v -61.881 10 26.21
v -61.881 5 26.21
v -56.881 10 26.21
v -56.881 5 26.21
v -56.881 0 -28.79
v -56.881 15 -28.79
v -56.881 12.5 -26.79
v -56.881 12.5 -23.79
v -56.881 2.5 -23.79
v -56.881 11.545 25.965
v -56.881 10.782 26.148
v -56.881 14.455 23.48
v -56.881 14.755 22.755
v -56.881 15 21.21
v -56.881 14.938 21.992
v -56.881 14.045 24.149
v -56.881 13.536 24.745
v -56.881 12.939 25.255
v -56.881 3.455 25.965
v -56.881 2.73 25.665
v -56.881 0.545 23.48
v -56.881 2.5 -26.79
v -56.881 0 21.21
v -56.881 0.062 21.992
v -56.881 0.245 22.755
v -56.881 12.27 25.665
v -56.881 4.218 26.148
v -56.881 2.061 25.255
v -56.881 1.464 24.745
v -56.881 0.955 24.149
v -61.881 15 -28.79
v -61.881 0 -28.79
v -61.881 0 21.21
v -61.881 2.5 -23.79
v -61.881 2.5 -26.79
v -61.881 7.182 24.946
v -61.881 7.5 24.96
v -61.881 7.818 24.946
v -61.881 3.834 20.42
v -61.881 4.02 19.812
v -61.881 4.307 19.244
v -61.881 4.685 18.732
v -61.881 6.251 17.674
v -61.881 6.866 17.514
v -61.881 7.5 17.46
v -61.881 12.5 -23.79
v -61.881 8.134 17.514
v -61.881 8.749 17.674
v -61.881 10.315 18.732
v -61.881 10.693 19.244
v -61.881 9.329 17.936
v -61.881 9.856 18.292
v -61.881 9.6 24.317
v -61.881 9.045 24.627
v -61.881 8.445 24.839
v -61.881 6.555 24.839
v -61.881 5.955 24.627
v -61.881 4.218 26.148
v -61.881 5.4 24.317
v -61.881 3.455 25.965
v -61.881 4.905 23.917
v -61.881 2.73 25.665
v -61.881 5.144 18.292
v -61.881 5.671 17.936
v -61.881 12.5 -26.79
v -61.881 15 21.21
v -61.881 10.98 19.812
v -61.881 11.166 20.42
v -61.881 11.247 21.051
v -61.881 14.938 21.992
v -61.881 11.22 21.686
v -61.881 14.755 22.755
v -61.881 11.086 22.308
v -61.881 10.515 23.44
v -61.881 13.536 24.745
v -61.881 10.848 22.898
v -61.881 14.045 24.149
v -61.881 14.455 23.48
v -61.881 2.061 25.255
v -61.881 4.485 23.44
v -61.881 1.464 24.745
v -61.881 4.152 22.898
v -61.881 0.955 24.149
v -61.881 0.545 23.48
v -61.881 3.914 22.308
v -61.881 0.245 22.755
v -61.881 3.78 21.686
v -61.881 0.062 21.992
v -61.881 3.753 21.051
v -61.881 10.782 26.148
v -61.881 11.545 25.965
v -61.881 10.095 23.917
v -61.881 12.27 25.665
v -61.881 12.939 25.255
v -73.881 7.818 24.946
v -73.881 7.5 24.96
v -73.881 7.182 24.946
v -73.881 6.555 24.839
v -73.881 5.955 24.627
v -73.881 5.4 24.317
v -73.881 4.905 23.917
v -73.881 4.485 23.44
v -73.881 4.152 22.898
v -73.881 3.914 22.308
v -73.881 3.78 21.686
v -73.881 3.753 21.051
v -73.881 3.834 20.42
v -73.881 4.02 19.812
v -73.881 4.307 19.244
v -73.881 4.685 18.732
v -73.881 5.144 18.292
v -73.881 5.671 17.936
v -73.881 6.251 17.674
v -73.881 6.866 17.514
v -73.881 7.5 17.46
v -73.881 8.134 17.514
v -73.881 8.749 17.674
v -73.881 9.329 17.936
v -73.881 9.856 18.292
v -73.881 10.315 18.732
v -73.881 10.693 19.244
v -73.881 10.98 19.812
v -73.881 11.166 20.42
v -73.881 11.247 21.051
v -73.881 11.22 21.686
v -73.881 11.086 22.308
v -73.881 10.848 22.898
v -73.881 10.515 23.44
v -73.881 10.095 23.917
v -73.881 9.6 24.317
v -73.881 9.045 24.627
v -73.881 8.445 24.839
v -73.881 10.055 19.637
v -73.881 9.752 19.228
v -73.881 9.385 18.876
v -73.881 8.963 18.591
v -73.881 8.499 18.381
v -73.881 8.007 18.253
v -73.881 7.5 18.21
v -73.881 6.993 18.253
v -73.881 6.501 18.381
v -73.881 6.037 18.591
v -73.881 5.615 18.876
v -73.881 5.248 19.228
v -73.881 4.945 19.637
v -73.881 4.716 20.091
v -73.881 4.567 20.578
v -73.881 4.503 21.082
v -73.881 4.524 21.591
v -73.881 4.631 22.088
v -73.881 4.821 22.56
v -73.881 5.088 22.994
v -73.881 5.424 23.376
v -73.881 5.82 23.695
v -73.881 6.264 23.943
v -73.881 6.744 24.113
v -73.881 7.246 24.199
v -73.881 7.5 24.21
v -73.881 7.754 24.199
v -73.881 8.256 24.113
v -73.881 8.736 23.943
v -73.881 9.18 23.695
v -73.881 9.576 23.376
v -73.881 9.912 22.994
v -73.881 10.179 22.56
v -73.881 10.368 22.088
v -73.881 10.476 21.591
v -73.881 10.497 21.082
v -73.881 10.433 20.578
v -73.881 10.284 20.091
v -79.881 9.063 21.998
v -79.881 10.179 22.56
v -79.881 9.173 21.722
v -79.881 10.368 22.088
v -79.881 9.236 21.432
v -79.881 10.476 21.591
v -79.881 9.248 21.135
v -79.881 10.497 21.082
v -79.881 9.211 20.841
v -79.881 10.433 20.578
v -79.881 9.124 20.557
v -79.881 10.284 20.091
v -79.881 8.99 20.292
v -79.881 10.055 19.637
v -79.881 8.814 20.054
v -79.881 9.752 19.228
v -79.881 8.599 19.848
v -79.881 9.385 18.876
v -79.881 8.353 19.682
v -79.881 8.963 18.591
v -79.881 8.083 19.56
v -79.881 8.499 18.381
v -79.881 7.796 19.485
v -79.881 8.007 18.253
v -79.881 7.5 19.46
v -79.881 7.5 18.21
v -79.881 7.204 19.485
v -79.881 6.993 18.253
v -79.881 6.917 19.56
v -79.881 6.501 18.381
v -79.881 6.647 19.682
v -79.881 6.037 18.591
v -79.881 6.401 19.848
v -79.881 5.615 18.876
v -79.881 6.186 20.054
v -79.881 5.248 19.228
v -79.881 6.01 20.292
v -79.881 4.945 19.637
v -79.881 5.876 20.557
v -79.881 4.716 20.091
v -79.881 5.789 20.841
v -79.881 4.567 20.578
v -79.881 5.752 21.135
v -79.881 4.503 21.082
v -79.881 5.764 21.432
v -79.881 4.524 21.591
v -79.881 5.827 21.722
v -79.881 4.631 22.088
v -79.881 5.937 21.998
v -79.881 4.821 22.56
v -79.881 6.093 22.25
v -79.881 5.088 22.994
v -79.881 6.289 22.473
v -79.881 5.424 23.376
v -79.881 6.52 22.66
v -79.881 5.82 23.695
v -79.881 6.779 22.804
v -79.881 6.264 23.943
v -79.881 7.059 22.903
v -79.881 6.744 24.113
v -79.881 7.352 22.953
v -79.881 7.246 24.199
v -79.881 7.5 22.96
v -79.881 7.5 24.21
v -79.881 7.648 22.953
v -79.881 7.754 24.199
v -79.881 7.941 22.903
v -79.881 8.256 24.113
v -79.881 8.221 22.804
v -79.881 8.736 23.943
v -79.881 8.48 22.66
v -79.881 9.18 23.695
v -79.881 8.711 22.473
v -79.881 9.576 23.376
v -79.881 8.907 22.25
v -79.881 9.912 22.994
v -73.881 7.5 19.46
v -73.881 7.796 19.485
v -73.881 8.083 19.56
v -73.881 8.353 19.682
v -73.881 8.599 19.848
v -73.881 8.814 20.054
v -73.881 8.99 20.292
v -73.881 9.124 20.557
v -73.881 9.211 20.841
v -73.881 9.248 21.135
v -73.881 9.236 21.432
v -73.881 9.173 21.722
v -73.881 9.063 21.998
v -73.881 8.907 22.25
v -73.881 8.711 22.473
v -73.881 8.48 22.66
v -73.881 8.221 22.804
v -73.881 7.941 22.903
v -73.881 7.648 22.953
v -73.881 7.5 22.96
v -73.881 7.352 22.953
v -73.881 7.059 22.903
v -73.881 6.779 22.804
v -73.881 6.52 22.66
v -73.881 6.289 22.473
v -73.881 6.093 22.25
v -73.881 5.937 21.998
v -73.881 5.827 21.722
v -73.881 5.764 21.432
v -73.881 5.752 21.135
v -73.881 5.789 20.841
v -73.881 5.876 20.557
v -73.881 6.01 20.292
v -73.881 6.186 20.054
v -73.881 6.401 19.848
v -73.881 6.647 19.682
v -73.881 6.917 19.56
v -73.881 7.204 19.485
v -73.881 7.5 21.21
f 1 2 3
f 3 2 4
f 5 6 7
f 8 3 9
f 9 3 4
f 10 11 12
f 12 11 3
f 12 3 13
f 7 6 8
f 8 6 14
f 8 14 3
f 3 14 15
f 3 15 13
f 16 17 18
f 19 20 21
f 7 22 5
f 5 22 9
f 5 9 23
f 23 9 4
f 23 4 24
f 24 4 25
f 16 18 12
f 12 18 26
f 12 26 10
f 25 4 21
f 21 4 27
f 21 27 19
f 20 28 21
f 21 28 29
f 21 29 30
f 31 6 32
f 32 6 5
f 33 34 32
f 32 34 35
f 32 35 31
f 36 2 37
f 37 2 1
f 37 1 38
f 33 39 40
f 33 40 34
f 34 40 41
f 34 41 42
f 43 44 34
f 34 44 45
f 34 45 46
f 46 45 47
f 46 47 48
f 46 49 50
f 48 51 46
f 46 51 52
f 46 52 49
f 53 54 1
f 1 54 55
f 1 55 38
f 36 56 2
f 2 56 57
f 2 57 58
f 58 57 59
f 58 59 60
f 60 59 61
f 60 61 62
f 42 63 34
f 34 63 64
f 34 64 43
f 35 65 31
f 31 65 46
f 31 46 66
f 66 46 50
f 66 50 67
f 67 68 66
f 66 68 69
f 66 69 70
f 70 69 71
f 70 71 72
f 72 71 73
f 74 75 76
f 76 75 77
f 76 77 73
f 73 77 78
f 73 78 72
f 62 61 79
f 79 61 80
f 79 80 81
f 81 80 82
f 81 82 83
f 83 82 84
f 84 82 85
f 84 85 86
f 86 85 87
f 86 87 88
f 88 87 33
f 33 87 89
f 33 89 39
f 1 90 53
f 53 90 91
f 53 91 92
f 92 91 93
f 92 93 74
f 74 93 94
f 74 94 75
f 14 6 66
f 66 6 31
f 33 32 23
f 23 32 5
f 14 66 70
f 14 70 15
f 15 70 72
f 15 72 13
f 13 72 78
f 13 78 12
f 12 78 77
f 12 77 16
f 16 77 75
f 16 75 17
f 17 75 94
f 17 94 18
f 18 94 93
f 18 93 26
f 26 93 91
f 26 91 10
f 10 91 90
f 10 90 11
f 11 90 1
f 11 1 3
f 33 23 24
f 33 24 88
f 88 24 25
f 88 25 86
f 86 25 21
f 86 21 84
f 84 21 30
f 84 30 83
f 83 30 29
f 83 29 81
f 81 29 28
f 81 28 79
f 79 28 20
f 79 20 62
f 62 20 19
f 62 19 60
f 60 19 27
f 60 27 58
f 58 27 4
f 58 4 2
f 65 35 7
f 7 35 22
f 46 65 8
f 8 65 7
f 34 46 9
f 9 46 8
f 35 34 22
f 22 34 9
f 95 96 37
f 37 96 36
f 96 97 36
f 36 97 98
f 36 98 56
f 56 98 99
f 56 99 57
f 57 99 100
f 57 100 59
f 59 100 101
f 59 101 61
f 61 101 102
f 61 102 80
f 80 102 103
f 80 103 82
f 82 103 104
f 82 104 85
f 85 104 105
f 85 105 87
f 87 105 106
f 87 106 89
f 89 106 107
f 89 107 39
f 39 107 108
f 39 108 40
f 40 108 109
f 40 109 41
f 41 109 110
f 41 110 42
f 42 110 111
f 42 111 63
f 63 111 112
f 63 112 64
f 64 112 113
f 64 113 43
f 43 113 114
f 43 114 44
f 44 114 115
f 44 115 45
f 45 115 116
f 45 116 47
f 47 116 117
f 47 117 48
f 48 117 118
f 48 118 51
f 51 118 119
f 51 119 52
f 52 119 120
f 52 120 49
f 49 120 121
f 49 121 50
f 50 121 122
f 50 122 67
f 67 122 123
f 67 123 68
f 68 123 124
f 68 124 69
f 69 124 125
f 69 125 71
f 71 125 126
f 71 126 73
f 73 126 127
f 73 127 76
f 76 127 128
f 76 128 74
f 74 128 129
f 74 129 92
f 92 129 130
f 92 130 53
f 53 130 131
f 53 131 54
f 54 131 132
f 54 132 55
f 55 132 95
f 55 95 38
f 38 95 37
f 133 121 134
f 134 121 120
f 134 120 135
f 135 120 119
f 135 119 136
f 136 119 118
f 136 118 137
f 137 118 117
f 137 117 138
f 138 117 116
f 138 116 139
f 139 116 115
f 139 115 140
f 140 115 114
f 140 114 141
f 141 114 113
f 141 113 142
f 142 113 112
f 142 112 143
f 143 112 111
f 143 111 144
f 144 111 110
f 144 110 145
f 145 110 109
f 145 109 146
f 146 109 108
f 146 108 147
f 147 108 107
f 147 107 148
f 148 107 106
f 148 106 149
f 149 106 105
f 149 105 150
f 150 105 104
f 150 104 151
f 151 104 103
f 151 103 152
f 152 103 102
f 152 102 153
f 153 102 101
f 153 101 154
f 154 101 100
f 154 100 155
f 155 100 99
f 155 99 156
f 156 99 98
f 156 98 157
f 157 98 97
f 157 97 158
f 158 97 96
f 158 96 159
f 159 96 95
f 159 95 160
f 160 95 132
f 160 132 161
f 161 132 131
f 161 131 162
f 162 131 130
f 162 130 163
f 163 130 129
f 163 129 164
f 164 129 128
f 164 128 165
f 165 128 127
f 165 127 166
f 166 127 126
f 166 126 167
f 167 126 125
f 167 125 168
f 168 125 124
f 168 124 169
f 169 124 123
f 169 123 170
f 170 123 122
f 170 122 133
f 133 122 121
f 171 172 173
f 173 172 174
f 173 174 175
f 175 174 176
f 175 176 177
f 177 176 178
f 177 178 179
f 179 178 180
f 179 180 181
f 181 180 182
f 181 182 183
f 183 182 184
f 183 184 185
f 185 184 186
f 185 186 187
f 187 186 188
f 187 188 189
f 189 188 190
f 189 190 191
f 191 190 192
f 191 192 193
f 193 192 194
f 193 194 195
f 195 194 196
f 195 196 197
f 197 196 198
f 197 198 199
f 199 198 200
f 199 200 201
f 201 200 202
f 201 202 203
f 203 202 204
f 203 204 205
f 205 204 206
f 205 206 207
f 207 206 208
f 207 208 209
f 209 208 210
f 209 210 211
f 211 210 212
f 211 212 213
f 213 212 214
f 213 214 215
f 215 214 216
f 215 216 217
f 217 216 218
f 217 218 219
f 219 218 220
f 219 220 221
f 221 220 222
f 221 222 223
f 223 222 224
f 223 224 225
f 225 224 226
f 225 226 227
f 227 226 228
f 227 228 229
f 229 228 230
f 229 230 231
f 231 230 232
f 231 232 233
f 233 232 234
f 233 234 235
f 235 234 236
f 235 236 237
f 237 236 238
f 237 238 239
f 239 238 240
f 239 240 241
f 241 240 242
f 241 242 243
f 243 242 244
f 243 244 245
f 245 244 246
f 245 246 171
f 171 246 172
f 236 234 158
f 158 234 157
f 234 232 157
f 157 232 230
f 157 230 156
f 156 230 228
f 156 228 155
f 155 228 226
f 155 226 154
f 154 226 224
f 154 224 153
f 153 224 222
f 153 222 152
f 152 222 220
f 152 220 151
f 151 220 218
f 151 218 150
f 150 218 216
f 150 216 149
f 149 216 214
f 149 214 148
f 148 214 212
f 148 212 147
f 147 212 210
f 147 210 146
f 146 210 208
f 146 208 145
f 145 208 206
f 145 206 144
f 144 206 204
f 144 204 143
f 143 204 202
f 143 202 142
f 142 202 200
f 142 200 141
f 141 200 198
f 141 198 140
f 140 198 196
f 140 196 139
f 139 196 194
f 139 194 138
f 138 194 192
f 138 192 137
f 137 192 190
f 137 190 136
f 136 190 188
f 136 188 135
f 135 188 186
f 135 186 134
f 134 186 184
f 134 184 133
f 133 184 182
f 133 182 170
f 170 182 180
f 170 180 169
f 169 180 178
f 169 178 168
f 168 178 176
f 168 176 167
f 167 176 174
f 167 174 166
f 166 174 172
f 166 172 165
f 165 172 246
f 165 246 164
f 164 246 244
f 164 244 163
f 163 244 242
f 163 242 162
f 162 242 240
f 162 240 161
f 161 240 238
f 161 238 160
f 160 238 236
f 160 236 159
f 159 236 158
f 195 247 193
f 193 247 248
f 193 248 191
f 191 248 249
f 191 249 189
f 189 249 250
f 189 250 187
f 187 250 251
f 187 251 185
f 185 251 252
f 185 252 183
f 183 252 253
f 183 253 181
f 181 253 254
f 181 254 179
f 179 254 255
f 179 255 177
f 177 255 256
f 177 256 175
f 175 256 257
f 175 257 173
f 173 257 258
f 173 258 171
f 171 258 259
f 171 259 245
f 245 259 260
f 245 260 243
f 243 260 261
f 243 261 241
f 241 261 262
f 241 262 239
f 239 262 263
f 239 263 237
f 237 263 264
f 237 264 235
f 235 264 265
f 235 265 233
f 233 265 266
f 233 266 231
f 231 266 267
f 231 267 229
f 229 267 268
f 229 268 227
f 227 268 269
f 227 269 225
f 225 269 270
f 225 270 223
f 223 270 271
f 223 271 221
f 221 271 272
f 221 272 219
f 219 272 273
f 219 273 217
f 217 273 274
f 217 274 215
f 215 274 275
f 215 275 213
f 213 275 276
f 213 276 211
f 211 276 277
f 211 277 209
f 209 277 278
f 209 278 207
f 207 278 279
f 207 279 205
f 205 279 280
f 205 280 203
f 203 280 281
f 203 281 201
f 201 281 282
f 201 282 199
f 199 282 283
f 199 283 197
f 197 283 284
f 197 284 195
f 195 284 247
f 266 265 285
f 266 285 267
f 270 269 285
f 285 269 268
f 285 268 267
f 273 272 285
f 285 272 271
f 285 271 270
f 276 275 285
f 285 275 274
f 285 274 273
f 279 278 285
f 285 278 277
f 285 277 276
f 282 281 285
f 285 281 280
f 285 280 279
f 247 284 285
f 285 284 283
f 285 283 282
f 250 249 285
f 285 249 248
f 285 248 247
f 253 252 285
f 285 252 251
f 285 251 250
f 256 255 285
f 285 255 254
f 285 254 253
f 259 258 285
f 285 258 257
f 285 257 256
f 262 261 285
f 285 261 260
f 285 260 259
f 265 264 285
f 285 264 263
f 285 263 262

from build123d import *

# Parameters (mm, degrees)
SKETCH1_W           = 5
SKETCH1_H           = 55
BOSS_EXTRUDE1_DEPTH = 15
FILLET1_R           = 5
SKETCH2_W           = 3
SKETCH2_H           = 10
CUT_EXTRUDE1_DEPTH  = 5
SKETCH3_R           = 3.75
BOSS_EXTRUDE2_DEPTH = 12
SKETCH4_R           = 3
SKETCH4_R_2         = 1.75
BOSS_EXTRUDE3_DEPTH = 6


with BuildPart() as part:
    # Sketch1 → Boss-Extrude1 (new body)
    with BuildSketch(Plane(origin=(0, 0, 0), x_dir=(1, 0, 0), z_dir=(0, 1, 0))):
        with Locations((-59.380536913, 1.290268456)):
            Rectangle(SKETCH1_W, SKETCH1_H)
    extrude(amount=BOSS_EXTRUDE1_DEPTH)

    # Fillet1
    fillet1_edges = [part.edges().sort_by_distance(p)[0] for p in [
        (-59.380536913, 15, 26.209731544),
        (-59.380536913, 0, 26.209731544),
    ]]
    fillet(fillet1_edges, radius=FILLET1_R)

    # Sketch2 → Cut-Extrude1 (cut)
    with BuildSketch(Plane.ZY.offset(61.880536913)):
        with Locations((-25.290268456, 7.5)):
            Rectangle(SKETCH2_W, SKETCH2_H)
    extrude(amount=-CUT_EXTRUDE1_DEPTH, mode=Mode.SUBTRACT)

    # Sketch3 → Boss-Extrude2 (add)
    with BuildSketch(Plane.ZY.offset(61.880536913)):
        with Locations((21.209731544, 7.5)):
            Circle(SKETCH3_R)
    extrude(amount=BOSS_EXTRUDE2_DEPTH)

    # Sketch4 → Boss-Extrude3 (add)
    with BuildSketch(Plane.ZY.offset(73.880536913)):
        with Locations((21.209731544, 7.5)):
            Circle(SKETCH4_R)
        with Locations((21.209731544, 7.5)):
            Circle(SKETCH4_R_2, mode=Mode.SUBTRACT)
    extrude(amount=BOSS_EXTRUDE3_DEPTH)


solid = part.part
